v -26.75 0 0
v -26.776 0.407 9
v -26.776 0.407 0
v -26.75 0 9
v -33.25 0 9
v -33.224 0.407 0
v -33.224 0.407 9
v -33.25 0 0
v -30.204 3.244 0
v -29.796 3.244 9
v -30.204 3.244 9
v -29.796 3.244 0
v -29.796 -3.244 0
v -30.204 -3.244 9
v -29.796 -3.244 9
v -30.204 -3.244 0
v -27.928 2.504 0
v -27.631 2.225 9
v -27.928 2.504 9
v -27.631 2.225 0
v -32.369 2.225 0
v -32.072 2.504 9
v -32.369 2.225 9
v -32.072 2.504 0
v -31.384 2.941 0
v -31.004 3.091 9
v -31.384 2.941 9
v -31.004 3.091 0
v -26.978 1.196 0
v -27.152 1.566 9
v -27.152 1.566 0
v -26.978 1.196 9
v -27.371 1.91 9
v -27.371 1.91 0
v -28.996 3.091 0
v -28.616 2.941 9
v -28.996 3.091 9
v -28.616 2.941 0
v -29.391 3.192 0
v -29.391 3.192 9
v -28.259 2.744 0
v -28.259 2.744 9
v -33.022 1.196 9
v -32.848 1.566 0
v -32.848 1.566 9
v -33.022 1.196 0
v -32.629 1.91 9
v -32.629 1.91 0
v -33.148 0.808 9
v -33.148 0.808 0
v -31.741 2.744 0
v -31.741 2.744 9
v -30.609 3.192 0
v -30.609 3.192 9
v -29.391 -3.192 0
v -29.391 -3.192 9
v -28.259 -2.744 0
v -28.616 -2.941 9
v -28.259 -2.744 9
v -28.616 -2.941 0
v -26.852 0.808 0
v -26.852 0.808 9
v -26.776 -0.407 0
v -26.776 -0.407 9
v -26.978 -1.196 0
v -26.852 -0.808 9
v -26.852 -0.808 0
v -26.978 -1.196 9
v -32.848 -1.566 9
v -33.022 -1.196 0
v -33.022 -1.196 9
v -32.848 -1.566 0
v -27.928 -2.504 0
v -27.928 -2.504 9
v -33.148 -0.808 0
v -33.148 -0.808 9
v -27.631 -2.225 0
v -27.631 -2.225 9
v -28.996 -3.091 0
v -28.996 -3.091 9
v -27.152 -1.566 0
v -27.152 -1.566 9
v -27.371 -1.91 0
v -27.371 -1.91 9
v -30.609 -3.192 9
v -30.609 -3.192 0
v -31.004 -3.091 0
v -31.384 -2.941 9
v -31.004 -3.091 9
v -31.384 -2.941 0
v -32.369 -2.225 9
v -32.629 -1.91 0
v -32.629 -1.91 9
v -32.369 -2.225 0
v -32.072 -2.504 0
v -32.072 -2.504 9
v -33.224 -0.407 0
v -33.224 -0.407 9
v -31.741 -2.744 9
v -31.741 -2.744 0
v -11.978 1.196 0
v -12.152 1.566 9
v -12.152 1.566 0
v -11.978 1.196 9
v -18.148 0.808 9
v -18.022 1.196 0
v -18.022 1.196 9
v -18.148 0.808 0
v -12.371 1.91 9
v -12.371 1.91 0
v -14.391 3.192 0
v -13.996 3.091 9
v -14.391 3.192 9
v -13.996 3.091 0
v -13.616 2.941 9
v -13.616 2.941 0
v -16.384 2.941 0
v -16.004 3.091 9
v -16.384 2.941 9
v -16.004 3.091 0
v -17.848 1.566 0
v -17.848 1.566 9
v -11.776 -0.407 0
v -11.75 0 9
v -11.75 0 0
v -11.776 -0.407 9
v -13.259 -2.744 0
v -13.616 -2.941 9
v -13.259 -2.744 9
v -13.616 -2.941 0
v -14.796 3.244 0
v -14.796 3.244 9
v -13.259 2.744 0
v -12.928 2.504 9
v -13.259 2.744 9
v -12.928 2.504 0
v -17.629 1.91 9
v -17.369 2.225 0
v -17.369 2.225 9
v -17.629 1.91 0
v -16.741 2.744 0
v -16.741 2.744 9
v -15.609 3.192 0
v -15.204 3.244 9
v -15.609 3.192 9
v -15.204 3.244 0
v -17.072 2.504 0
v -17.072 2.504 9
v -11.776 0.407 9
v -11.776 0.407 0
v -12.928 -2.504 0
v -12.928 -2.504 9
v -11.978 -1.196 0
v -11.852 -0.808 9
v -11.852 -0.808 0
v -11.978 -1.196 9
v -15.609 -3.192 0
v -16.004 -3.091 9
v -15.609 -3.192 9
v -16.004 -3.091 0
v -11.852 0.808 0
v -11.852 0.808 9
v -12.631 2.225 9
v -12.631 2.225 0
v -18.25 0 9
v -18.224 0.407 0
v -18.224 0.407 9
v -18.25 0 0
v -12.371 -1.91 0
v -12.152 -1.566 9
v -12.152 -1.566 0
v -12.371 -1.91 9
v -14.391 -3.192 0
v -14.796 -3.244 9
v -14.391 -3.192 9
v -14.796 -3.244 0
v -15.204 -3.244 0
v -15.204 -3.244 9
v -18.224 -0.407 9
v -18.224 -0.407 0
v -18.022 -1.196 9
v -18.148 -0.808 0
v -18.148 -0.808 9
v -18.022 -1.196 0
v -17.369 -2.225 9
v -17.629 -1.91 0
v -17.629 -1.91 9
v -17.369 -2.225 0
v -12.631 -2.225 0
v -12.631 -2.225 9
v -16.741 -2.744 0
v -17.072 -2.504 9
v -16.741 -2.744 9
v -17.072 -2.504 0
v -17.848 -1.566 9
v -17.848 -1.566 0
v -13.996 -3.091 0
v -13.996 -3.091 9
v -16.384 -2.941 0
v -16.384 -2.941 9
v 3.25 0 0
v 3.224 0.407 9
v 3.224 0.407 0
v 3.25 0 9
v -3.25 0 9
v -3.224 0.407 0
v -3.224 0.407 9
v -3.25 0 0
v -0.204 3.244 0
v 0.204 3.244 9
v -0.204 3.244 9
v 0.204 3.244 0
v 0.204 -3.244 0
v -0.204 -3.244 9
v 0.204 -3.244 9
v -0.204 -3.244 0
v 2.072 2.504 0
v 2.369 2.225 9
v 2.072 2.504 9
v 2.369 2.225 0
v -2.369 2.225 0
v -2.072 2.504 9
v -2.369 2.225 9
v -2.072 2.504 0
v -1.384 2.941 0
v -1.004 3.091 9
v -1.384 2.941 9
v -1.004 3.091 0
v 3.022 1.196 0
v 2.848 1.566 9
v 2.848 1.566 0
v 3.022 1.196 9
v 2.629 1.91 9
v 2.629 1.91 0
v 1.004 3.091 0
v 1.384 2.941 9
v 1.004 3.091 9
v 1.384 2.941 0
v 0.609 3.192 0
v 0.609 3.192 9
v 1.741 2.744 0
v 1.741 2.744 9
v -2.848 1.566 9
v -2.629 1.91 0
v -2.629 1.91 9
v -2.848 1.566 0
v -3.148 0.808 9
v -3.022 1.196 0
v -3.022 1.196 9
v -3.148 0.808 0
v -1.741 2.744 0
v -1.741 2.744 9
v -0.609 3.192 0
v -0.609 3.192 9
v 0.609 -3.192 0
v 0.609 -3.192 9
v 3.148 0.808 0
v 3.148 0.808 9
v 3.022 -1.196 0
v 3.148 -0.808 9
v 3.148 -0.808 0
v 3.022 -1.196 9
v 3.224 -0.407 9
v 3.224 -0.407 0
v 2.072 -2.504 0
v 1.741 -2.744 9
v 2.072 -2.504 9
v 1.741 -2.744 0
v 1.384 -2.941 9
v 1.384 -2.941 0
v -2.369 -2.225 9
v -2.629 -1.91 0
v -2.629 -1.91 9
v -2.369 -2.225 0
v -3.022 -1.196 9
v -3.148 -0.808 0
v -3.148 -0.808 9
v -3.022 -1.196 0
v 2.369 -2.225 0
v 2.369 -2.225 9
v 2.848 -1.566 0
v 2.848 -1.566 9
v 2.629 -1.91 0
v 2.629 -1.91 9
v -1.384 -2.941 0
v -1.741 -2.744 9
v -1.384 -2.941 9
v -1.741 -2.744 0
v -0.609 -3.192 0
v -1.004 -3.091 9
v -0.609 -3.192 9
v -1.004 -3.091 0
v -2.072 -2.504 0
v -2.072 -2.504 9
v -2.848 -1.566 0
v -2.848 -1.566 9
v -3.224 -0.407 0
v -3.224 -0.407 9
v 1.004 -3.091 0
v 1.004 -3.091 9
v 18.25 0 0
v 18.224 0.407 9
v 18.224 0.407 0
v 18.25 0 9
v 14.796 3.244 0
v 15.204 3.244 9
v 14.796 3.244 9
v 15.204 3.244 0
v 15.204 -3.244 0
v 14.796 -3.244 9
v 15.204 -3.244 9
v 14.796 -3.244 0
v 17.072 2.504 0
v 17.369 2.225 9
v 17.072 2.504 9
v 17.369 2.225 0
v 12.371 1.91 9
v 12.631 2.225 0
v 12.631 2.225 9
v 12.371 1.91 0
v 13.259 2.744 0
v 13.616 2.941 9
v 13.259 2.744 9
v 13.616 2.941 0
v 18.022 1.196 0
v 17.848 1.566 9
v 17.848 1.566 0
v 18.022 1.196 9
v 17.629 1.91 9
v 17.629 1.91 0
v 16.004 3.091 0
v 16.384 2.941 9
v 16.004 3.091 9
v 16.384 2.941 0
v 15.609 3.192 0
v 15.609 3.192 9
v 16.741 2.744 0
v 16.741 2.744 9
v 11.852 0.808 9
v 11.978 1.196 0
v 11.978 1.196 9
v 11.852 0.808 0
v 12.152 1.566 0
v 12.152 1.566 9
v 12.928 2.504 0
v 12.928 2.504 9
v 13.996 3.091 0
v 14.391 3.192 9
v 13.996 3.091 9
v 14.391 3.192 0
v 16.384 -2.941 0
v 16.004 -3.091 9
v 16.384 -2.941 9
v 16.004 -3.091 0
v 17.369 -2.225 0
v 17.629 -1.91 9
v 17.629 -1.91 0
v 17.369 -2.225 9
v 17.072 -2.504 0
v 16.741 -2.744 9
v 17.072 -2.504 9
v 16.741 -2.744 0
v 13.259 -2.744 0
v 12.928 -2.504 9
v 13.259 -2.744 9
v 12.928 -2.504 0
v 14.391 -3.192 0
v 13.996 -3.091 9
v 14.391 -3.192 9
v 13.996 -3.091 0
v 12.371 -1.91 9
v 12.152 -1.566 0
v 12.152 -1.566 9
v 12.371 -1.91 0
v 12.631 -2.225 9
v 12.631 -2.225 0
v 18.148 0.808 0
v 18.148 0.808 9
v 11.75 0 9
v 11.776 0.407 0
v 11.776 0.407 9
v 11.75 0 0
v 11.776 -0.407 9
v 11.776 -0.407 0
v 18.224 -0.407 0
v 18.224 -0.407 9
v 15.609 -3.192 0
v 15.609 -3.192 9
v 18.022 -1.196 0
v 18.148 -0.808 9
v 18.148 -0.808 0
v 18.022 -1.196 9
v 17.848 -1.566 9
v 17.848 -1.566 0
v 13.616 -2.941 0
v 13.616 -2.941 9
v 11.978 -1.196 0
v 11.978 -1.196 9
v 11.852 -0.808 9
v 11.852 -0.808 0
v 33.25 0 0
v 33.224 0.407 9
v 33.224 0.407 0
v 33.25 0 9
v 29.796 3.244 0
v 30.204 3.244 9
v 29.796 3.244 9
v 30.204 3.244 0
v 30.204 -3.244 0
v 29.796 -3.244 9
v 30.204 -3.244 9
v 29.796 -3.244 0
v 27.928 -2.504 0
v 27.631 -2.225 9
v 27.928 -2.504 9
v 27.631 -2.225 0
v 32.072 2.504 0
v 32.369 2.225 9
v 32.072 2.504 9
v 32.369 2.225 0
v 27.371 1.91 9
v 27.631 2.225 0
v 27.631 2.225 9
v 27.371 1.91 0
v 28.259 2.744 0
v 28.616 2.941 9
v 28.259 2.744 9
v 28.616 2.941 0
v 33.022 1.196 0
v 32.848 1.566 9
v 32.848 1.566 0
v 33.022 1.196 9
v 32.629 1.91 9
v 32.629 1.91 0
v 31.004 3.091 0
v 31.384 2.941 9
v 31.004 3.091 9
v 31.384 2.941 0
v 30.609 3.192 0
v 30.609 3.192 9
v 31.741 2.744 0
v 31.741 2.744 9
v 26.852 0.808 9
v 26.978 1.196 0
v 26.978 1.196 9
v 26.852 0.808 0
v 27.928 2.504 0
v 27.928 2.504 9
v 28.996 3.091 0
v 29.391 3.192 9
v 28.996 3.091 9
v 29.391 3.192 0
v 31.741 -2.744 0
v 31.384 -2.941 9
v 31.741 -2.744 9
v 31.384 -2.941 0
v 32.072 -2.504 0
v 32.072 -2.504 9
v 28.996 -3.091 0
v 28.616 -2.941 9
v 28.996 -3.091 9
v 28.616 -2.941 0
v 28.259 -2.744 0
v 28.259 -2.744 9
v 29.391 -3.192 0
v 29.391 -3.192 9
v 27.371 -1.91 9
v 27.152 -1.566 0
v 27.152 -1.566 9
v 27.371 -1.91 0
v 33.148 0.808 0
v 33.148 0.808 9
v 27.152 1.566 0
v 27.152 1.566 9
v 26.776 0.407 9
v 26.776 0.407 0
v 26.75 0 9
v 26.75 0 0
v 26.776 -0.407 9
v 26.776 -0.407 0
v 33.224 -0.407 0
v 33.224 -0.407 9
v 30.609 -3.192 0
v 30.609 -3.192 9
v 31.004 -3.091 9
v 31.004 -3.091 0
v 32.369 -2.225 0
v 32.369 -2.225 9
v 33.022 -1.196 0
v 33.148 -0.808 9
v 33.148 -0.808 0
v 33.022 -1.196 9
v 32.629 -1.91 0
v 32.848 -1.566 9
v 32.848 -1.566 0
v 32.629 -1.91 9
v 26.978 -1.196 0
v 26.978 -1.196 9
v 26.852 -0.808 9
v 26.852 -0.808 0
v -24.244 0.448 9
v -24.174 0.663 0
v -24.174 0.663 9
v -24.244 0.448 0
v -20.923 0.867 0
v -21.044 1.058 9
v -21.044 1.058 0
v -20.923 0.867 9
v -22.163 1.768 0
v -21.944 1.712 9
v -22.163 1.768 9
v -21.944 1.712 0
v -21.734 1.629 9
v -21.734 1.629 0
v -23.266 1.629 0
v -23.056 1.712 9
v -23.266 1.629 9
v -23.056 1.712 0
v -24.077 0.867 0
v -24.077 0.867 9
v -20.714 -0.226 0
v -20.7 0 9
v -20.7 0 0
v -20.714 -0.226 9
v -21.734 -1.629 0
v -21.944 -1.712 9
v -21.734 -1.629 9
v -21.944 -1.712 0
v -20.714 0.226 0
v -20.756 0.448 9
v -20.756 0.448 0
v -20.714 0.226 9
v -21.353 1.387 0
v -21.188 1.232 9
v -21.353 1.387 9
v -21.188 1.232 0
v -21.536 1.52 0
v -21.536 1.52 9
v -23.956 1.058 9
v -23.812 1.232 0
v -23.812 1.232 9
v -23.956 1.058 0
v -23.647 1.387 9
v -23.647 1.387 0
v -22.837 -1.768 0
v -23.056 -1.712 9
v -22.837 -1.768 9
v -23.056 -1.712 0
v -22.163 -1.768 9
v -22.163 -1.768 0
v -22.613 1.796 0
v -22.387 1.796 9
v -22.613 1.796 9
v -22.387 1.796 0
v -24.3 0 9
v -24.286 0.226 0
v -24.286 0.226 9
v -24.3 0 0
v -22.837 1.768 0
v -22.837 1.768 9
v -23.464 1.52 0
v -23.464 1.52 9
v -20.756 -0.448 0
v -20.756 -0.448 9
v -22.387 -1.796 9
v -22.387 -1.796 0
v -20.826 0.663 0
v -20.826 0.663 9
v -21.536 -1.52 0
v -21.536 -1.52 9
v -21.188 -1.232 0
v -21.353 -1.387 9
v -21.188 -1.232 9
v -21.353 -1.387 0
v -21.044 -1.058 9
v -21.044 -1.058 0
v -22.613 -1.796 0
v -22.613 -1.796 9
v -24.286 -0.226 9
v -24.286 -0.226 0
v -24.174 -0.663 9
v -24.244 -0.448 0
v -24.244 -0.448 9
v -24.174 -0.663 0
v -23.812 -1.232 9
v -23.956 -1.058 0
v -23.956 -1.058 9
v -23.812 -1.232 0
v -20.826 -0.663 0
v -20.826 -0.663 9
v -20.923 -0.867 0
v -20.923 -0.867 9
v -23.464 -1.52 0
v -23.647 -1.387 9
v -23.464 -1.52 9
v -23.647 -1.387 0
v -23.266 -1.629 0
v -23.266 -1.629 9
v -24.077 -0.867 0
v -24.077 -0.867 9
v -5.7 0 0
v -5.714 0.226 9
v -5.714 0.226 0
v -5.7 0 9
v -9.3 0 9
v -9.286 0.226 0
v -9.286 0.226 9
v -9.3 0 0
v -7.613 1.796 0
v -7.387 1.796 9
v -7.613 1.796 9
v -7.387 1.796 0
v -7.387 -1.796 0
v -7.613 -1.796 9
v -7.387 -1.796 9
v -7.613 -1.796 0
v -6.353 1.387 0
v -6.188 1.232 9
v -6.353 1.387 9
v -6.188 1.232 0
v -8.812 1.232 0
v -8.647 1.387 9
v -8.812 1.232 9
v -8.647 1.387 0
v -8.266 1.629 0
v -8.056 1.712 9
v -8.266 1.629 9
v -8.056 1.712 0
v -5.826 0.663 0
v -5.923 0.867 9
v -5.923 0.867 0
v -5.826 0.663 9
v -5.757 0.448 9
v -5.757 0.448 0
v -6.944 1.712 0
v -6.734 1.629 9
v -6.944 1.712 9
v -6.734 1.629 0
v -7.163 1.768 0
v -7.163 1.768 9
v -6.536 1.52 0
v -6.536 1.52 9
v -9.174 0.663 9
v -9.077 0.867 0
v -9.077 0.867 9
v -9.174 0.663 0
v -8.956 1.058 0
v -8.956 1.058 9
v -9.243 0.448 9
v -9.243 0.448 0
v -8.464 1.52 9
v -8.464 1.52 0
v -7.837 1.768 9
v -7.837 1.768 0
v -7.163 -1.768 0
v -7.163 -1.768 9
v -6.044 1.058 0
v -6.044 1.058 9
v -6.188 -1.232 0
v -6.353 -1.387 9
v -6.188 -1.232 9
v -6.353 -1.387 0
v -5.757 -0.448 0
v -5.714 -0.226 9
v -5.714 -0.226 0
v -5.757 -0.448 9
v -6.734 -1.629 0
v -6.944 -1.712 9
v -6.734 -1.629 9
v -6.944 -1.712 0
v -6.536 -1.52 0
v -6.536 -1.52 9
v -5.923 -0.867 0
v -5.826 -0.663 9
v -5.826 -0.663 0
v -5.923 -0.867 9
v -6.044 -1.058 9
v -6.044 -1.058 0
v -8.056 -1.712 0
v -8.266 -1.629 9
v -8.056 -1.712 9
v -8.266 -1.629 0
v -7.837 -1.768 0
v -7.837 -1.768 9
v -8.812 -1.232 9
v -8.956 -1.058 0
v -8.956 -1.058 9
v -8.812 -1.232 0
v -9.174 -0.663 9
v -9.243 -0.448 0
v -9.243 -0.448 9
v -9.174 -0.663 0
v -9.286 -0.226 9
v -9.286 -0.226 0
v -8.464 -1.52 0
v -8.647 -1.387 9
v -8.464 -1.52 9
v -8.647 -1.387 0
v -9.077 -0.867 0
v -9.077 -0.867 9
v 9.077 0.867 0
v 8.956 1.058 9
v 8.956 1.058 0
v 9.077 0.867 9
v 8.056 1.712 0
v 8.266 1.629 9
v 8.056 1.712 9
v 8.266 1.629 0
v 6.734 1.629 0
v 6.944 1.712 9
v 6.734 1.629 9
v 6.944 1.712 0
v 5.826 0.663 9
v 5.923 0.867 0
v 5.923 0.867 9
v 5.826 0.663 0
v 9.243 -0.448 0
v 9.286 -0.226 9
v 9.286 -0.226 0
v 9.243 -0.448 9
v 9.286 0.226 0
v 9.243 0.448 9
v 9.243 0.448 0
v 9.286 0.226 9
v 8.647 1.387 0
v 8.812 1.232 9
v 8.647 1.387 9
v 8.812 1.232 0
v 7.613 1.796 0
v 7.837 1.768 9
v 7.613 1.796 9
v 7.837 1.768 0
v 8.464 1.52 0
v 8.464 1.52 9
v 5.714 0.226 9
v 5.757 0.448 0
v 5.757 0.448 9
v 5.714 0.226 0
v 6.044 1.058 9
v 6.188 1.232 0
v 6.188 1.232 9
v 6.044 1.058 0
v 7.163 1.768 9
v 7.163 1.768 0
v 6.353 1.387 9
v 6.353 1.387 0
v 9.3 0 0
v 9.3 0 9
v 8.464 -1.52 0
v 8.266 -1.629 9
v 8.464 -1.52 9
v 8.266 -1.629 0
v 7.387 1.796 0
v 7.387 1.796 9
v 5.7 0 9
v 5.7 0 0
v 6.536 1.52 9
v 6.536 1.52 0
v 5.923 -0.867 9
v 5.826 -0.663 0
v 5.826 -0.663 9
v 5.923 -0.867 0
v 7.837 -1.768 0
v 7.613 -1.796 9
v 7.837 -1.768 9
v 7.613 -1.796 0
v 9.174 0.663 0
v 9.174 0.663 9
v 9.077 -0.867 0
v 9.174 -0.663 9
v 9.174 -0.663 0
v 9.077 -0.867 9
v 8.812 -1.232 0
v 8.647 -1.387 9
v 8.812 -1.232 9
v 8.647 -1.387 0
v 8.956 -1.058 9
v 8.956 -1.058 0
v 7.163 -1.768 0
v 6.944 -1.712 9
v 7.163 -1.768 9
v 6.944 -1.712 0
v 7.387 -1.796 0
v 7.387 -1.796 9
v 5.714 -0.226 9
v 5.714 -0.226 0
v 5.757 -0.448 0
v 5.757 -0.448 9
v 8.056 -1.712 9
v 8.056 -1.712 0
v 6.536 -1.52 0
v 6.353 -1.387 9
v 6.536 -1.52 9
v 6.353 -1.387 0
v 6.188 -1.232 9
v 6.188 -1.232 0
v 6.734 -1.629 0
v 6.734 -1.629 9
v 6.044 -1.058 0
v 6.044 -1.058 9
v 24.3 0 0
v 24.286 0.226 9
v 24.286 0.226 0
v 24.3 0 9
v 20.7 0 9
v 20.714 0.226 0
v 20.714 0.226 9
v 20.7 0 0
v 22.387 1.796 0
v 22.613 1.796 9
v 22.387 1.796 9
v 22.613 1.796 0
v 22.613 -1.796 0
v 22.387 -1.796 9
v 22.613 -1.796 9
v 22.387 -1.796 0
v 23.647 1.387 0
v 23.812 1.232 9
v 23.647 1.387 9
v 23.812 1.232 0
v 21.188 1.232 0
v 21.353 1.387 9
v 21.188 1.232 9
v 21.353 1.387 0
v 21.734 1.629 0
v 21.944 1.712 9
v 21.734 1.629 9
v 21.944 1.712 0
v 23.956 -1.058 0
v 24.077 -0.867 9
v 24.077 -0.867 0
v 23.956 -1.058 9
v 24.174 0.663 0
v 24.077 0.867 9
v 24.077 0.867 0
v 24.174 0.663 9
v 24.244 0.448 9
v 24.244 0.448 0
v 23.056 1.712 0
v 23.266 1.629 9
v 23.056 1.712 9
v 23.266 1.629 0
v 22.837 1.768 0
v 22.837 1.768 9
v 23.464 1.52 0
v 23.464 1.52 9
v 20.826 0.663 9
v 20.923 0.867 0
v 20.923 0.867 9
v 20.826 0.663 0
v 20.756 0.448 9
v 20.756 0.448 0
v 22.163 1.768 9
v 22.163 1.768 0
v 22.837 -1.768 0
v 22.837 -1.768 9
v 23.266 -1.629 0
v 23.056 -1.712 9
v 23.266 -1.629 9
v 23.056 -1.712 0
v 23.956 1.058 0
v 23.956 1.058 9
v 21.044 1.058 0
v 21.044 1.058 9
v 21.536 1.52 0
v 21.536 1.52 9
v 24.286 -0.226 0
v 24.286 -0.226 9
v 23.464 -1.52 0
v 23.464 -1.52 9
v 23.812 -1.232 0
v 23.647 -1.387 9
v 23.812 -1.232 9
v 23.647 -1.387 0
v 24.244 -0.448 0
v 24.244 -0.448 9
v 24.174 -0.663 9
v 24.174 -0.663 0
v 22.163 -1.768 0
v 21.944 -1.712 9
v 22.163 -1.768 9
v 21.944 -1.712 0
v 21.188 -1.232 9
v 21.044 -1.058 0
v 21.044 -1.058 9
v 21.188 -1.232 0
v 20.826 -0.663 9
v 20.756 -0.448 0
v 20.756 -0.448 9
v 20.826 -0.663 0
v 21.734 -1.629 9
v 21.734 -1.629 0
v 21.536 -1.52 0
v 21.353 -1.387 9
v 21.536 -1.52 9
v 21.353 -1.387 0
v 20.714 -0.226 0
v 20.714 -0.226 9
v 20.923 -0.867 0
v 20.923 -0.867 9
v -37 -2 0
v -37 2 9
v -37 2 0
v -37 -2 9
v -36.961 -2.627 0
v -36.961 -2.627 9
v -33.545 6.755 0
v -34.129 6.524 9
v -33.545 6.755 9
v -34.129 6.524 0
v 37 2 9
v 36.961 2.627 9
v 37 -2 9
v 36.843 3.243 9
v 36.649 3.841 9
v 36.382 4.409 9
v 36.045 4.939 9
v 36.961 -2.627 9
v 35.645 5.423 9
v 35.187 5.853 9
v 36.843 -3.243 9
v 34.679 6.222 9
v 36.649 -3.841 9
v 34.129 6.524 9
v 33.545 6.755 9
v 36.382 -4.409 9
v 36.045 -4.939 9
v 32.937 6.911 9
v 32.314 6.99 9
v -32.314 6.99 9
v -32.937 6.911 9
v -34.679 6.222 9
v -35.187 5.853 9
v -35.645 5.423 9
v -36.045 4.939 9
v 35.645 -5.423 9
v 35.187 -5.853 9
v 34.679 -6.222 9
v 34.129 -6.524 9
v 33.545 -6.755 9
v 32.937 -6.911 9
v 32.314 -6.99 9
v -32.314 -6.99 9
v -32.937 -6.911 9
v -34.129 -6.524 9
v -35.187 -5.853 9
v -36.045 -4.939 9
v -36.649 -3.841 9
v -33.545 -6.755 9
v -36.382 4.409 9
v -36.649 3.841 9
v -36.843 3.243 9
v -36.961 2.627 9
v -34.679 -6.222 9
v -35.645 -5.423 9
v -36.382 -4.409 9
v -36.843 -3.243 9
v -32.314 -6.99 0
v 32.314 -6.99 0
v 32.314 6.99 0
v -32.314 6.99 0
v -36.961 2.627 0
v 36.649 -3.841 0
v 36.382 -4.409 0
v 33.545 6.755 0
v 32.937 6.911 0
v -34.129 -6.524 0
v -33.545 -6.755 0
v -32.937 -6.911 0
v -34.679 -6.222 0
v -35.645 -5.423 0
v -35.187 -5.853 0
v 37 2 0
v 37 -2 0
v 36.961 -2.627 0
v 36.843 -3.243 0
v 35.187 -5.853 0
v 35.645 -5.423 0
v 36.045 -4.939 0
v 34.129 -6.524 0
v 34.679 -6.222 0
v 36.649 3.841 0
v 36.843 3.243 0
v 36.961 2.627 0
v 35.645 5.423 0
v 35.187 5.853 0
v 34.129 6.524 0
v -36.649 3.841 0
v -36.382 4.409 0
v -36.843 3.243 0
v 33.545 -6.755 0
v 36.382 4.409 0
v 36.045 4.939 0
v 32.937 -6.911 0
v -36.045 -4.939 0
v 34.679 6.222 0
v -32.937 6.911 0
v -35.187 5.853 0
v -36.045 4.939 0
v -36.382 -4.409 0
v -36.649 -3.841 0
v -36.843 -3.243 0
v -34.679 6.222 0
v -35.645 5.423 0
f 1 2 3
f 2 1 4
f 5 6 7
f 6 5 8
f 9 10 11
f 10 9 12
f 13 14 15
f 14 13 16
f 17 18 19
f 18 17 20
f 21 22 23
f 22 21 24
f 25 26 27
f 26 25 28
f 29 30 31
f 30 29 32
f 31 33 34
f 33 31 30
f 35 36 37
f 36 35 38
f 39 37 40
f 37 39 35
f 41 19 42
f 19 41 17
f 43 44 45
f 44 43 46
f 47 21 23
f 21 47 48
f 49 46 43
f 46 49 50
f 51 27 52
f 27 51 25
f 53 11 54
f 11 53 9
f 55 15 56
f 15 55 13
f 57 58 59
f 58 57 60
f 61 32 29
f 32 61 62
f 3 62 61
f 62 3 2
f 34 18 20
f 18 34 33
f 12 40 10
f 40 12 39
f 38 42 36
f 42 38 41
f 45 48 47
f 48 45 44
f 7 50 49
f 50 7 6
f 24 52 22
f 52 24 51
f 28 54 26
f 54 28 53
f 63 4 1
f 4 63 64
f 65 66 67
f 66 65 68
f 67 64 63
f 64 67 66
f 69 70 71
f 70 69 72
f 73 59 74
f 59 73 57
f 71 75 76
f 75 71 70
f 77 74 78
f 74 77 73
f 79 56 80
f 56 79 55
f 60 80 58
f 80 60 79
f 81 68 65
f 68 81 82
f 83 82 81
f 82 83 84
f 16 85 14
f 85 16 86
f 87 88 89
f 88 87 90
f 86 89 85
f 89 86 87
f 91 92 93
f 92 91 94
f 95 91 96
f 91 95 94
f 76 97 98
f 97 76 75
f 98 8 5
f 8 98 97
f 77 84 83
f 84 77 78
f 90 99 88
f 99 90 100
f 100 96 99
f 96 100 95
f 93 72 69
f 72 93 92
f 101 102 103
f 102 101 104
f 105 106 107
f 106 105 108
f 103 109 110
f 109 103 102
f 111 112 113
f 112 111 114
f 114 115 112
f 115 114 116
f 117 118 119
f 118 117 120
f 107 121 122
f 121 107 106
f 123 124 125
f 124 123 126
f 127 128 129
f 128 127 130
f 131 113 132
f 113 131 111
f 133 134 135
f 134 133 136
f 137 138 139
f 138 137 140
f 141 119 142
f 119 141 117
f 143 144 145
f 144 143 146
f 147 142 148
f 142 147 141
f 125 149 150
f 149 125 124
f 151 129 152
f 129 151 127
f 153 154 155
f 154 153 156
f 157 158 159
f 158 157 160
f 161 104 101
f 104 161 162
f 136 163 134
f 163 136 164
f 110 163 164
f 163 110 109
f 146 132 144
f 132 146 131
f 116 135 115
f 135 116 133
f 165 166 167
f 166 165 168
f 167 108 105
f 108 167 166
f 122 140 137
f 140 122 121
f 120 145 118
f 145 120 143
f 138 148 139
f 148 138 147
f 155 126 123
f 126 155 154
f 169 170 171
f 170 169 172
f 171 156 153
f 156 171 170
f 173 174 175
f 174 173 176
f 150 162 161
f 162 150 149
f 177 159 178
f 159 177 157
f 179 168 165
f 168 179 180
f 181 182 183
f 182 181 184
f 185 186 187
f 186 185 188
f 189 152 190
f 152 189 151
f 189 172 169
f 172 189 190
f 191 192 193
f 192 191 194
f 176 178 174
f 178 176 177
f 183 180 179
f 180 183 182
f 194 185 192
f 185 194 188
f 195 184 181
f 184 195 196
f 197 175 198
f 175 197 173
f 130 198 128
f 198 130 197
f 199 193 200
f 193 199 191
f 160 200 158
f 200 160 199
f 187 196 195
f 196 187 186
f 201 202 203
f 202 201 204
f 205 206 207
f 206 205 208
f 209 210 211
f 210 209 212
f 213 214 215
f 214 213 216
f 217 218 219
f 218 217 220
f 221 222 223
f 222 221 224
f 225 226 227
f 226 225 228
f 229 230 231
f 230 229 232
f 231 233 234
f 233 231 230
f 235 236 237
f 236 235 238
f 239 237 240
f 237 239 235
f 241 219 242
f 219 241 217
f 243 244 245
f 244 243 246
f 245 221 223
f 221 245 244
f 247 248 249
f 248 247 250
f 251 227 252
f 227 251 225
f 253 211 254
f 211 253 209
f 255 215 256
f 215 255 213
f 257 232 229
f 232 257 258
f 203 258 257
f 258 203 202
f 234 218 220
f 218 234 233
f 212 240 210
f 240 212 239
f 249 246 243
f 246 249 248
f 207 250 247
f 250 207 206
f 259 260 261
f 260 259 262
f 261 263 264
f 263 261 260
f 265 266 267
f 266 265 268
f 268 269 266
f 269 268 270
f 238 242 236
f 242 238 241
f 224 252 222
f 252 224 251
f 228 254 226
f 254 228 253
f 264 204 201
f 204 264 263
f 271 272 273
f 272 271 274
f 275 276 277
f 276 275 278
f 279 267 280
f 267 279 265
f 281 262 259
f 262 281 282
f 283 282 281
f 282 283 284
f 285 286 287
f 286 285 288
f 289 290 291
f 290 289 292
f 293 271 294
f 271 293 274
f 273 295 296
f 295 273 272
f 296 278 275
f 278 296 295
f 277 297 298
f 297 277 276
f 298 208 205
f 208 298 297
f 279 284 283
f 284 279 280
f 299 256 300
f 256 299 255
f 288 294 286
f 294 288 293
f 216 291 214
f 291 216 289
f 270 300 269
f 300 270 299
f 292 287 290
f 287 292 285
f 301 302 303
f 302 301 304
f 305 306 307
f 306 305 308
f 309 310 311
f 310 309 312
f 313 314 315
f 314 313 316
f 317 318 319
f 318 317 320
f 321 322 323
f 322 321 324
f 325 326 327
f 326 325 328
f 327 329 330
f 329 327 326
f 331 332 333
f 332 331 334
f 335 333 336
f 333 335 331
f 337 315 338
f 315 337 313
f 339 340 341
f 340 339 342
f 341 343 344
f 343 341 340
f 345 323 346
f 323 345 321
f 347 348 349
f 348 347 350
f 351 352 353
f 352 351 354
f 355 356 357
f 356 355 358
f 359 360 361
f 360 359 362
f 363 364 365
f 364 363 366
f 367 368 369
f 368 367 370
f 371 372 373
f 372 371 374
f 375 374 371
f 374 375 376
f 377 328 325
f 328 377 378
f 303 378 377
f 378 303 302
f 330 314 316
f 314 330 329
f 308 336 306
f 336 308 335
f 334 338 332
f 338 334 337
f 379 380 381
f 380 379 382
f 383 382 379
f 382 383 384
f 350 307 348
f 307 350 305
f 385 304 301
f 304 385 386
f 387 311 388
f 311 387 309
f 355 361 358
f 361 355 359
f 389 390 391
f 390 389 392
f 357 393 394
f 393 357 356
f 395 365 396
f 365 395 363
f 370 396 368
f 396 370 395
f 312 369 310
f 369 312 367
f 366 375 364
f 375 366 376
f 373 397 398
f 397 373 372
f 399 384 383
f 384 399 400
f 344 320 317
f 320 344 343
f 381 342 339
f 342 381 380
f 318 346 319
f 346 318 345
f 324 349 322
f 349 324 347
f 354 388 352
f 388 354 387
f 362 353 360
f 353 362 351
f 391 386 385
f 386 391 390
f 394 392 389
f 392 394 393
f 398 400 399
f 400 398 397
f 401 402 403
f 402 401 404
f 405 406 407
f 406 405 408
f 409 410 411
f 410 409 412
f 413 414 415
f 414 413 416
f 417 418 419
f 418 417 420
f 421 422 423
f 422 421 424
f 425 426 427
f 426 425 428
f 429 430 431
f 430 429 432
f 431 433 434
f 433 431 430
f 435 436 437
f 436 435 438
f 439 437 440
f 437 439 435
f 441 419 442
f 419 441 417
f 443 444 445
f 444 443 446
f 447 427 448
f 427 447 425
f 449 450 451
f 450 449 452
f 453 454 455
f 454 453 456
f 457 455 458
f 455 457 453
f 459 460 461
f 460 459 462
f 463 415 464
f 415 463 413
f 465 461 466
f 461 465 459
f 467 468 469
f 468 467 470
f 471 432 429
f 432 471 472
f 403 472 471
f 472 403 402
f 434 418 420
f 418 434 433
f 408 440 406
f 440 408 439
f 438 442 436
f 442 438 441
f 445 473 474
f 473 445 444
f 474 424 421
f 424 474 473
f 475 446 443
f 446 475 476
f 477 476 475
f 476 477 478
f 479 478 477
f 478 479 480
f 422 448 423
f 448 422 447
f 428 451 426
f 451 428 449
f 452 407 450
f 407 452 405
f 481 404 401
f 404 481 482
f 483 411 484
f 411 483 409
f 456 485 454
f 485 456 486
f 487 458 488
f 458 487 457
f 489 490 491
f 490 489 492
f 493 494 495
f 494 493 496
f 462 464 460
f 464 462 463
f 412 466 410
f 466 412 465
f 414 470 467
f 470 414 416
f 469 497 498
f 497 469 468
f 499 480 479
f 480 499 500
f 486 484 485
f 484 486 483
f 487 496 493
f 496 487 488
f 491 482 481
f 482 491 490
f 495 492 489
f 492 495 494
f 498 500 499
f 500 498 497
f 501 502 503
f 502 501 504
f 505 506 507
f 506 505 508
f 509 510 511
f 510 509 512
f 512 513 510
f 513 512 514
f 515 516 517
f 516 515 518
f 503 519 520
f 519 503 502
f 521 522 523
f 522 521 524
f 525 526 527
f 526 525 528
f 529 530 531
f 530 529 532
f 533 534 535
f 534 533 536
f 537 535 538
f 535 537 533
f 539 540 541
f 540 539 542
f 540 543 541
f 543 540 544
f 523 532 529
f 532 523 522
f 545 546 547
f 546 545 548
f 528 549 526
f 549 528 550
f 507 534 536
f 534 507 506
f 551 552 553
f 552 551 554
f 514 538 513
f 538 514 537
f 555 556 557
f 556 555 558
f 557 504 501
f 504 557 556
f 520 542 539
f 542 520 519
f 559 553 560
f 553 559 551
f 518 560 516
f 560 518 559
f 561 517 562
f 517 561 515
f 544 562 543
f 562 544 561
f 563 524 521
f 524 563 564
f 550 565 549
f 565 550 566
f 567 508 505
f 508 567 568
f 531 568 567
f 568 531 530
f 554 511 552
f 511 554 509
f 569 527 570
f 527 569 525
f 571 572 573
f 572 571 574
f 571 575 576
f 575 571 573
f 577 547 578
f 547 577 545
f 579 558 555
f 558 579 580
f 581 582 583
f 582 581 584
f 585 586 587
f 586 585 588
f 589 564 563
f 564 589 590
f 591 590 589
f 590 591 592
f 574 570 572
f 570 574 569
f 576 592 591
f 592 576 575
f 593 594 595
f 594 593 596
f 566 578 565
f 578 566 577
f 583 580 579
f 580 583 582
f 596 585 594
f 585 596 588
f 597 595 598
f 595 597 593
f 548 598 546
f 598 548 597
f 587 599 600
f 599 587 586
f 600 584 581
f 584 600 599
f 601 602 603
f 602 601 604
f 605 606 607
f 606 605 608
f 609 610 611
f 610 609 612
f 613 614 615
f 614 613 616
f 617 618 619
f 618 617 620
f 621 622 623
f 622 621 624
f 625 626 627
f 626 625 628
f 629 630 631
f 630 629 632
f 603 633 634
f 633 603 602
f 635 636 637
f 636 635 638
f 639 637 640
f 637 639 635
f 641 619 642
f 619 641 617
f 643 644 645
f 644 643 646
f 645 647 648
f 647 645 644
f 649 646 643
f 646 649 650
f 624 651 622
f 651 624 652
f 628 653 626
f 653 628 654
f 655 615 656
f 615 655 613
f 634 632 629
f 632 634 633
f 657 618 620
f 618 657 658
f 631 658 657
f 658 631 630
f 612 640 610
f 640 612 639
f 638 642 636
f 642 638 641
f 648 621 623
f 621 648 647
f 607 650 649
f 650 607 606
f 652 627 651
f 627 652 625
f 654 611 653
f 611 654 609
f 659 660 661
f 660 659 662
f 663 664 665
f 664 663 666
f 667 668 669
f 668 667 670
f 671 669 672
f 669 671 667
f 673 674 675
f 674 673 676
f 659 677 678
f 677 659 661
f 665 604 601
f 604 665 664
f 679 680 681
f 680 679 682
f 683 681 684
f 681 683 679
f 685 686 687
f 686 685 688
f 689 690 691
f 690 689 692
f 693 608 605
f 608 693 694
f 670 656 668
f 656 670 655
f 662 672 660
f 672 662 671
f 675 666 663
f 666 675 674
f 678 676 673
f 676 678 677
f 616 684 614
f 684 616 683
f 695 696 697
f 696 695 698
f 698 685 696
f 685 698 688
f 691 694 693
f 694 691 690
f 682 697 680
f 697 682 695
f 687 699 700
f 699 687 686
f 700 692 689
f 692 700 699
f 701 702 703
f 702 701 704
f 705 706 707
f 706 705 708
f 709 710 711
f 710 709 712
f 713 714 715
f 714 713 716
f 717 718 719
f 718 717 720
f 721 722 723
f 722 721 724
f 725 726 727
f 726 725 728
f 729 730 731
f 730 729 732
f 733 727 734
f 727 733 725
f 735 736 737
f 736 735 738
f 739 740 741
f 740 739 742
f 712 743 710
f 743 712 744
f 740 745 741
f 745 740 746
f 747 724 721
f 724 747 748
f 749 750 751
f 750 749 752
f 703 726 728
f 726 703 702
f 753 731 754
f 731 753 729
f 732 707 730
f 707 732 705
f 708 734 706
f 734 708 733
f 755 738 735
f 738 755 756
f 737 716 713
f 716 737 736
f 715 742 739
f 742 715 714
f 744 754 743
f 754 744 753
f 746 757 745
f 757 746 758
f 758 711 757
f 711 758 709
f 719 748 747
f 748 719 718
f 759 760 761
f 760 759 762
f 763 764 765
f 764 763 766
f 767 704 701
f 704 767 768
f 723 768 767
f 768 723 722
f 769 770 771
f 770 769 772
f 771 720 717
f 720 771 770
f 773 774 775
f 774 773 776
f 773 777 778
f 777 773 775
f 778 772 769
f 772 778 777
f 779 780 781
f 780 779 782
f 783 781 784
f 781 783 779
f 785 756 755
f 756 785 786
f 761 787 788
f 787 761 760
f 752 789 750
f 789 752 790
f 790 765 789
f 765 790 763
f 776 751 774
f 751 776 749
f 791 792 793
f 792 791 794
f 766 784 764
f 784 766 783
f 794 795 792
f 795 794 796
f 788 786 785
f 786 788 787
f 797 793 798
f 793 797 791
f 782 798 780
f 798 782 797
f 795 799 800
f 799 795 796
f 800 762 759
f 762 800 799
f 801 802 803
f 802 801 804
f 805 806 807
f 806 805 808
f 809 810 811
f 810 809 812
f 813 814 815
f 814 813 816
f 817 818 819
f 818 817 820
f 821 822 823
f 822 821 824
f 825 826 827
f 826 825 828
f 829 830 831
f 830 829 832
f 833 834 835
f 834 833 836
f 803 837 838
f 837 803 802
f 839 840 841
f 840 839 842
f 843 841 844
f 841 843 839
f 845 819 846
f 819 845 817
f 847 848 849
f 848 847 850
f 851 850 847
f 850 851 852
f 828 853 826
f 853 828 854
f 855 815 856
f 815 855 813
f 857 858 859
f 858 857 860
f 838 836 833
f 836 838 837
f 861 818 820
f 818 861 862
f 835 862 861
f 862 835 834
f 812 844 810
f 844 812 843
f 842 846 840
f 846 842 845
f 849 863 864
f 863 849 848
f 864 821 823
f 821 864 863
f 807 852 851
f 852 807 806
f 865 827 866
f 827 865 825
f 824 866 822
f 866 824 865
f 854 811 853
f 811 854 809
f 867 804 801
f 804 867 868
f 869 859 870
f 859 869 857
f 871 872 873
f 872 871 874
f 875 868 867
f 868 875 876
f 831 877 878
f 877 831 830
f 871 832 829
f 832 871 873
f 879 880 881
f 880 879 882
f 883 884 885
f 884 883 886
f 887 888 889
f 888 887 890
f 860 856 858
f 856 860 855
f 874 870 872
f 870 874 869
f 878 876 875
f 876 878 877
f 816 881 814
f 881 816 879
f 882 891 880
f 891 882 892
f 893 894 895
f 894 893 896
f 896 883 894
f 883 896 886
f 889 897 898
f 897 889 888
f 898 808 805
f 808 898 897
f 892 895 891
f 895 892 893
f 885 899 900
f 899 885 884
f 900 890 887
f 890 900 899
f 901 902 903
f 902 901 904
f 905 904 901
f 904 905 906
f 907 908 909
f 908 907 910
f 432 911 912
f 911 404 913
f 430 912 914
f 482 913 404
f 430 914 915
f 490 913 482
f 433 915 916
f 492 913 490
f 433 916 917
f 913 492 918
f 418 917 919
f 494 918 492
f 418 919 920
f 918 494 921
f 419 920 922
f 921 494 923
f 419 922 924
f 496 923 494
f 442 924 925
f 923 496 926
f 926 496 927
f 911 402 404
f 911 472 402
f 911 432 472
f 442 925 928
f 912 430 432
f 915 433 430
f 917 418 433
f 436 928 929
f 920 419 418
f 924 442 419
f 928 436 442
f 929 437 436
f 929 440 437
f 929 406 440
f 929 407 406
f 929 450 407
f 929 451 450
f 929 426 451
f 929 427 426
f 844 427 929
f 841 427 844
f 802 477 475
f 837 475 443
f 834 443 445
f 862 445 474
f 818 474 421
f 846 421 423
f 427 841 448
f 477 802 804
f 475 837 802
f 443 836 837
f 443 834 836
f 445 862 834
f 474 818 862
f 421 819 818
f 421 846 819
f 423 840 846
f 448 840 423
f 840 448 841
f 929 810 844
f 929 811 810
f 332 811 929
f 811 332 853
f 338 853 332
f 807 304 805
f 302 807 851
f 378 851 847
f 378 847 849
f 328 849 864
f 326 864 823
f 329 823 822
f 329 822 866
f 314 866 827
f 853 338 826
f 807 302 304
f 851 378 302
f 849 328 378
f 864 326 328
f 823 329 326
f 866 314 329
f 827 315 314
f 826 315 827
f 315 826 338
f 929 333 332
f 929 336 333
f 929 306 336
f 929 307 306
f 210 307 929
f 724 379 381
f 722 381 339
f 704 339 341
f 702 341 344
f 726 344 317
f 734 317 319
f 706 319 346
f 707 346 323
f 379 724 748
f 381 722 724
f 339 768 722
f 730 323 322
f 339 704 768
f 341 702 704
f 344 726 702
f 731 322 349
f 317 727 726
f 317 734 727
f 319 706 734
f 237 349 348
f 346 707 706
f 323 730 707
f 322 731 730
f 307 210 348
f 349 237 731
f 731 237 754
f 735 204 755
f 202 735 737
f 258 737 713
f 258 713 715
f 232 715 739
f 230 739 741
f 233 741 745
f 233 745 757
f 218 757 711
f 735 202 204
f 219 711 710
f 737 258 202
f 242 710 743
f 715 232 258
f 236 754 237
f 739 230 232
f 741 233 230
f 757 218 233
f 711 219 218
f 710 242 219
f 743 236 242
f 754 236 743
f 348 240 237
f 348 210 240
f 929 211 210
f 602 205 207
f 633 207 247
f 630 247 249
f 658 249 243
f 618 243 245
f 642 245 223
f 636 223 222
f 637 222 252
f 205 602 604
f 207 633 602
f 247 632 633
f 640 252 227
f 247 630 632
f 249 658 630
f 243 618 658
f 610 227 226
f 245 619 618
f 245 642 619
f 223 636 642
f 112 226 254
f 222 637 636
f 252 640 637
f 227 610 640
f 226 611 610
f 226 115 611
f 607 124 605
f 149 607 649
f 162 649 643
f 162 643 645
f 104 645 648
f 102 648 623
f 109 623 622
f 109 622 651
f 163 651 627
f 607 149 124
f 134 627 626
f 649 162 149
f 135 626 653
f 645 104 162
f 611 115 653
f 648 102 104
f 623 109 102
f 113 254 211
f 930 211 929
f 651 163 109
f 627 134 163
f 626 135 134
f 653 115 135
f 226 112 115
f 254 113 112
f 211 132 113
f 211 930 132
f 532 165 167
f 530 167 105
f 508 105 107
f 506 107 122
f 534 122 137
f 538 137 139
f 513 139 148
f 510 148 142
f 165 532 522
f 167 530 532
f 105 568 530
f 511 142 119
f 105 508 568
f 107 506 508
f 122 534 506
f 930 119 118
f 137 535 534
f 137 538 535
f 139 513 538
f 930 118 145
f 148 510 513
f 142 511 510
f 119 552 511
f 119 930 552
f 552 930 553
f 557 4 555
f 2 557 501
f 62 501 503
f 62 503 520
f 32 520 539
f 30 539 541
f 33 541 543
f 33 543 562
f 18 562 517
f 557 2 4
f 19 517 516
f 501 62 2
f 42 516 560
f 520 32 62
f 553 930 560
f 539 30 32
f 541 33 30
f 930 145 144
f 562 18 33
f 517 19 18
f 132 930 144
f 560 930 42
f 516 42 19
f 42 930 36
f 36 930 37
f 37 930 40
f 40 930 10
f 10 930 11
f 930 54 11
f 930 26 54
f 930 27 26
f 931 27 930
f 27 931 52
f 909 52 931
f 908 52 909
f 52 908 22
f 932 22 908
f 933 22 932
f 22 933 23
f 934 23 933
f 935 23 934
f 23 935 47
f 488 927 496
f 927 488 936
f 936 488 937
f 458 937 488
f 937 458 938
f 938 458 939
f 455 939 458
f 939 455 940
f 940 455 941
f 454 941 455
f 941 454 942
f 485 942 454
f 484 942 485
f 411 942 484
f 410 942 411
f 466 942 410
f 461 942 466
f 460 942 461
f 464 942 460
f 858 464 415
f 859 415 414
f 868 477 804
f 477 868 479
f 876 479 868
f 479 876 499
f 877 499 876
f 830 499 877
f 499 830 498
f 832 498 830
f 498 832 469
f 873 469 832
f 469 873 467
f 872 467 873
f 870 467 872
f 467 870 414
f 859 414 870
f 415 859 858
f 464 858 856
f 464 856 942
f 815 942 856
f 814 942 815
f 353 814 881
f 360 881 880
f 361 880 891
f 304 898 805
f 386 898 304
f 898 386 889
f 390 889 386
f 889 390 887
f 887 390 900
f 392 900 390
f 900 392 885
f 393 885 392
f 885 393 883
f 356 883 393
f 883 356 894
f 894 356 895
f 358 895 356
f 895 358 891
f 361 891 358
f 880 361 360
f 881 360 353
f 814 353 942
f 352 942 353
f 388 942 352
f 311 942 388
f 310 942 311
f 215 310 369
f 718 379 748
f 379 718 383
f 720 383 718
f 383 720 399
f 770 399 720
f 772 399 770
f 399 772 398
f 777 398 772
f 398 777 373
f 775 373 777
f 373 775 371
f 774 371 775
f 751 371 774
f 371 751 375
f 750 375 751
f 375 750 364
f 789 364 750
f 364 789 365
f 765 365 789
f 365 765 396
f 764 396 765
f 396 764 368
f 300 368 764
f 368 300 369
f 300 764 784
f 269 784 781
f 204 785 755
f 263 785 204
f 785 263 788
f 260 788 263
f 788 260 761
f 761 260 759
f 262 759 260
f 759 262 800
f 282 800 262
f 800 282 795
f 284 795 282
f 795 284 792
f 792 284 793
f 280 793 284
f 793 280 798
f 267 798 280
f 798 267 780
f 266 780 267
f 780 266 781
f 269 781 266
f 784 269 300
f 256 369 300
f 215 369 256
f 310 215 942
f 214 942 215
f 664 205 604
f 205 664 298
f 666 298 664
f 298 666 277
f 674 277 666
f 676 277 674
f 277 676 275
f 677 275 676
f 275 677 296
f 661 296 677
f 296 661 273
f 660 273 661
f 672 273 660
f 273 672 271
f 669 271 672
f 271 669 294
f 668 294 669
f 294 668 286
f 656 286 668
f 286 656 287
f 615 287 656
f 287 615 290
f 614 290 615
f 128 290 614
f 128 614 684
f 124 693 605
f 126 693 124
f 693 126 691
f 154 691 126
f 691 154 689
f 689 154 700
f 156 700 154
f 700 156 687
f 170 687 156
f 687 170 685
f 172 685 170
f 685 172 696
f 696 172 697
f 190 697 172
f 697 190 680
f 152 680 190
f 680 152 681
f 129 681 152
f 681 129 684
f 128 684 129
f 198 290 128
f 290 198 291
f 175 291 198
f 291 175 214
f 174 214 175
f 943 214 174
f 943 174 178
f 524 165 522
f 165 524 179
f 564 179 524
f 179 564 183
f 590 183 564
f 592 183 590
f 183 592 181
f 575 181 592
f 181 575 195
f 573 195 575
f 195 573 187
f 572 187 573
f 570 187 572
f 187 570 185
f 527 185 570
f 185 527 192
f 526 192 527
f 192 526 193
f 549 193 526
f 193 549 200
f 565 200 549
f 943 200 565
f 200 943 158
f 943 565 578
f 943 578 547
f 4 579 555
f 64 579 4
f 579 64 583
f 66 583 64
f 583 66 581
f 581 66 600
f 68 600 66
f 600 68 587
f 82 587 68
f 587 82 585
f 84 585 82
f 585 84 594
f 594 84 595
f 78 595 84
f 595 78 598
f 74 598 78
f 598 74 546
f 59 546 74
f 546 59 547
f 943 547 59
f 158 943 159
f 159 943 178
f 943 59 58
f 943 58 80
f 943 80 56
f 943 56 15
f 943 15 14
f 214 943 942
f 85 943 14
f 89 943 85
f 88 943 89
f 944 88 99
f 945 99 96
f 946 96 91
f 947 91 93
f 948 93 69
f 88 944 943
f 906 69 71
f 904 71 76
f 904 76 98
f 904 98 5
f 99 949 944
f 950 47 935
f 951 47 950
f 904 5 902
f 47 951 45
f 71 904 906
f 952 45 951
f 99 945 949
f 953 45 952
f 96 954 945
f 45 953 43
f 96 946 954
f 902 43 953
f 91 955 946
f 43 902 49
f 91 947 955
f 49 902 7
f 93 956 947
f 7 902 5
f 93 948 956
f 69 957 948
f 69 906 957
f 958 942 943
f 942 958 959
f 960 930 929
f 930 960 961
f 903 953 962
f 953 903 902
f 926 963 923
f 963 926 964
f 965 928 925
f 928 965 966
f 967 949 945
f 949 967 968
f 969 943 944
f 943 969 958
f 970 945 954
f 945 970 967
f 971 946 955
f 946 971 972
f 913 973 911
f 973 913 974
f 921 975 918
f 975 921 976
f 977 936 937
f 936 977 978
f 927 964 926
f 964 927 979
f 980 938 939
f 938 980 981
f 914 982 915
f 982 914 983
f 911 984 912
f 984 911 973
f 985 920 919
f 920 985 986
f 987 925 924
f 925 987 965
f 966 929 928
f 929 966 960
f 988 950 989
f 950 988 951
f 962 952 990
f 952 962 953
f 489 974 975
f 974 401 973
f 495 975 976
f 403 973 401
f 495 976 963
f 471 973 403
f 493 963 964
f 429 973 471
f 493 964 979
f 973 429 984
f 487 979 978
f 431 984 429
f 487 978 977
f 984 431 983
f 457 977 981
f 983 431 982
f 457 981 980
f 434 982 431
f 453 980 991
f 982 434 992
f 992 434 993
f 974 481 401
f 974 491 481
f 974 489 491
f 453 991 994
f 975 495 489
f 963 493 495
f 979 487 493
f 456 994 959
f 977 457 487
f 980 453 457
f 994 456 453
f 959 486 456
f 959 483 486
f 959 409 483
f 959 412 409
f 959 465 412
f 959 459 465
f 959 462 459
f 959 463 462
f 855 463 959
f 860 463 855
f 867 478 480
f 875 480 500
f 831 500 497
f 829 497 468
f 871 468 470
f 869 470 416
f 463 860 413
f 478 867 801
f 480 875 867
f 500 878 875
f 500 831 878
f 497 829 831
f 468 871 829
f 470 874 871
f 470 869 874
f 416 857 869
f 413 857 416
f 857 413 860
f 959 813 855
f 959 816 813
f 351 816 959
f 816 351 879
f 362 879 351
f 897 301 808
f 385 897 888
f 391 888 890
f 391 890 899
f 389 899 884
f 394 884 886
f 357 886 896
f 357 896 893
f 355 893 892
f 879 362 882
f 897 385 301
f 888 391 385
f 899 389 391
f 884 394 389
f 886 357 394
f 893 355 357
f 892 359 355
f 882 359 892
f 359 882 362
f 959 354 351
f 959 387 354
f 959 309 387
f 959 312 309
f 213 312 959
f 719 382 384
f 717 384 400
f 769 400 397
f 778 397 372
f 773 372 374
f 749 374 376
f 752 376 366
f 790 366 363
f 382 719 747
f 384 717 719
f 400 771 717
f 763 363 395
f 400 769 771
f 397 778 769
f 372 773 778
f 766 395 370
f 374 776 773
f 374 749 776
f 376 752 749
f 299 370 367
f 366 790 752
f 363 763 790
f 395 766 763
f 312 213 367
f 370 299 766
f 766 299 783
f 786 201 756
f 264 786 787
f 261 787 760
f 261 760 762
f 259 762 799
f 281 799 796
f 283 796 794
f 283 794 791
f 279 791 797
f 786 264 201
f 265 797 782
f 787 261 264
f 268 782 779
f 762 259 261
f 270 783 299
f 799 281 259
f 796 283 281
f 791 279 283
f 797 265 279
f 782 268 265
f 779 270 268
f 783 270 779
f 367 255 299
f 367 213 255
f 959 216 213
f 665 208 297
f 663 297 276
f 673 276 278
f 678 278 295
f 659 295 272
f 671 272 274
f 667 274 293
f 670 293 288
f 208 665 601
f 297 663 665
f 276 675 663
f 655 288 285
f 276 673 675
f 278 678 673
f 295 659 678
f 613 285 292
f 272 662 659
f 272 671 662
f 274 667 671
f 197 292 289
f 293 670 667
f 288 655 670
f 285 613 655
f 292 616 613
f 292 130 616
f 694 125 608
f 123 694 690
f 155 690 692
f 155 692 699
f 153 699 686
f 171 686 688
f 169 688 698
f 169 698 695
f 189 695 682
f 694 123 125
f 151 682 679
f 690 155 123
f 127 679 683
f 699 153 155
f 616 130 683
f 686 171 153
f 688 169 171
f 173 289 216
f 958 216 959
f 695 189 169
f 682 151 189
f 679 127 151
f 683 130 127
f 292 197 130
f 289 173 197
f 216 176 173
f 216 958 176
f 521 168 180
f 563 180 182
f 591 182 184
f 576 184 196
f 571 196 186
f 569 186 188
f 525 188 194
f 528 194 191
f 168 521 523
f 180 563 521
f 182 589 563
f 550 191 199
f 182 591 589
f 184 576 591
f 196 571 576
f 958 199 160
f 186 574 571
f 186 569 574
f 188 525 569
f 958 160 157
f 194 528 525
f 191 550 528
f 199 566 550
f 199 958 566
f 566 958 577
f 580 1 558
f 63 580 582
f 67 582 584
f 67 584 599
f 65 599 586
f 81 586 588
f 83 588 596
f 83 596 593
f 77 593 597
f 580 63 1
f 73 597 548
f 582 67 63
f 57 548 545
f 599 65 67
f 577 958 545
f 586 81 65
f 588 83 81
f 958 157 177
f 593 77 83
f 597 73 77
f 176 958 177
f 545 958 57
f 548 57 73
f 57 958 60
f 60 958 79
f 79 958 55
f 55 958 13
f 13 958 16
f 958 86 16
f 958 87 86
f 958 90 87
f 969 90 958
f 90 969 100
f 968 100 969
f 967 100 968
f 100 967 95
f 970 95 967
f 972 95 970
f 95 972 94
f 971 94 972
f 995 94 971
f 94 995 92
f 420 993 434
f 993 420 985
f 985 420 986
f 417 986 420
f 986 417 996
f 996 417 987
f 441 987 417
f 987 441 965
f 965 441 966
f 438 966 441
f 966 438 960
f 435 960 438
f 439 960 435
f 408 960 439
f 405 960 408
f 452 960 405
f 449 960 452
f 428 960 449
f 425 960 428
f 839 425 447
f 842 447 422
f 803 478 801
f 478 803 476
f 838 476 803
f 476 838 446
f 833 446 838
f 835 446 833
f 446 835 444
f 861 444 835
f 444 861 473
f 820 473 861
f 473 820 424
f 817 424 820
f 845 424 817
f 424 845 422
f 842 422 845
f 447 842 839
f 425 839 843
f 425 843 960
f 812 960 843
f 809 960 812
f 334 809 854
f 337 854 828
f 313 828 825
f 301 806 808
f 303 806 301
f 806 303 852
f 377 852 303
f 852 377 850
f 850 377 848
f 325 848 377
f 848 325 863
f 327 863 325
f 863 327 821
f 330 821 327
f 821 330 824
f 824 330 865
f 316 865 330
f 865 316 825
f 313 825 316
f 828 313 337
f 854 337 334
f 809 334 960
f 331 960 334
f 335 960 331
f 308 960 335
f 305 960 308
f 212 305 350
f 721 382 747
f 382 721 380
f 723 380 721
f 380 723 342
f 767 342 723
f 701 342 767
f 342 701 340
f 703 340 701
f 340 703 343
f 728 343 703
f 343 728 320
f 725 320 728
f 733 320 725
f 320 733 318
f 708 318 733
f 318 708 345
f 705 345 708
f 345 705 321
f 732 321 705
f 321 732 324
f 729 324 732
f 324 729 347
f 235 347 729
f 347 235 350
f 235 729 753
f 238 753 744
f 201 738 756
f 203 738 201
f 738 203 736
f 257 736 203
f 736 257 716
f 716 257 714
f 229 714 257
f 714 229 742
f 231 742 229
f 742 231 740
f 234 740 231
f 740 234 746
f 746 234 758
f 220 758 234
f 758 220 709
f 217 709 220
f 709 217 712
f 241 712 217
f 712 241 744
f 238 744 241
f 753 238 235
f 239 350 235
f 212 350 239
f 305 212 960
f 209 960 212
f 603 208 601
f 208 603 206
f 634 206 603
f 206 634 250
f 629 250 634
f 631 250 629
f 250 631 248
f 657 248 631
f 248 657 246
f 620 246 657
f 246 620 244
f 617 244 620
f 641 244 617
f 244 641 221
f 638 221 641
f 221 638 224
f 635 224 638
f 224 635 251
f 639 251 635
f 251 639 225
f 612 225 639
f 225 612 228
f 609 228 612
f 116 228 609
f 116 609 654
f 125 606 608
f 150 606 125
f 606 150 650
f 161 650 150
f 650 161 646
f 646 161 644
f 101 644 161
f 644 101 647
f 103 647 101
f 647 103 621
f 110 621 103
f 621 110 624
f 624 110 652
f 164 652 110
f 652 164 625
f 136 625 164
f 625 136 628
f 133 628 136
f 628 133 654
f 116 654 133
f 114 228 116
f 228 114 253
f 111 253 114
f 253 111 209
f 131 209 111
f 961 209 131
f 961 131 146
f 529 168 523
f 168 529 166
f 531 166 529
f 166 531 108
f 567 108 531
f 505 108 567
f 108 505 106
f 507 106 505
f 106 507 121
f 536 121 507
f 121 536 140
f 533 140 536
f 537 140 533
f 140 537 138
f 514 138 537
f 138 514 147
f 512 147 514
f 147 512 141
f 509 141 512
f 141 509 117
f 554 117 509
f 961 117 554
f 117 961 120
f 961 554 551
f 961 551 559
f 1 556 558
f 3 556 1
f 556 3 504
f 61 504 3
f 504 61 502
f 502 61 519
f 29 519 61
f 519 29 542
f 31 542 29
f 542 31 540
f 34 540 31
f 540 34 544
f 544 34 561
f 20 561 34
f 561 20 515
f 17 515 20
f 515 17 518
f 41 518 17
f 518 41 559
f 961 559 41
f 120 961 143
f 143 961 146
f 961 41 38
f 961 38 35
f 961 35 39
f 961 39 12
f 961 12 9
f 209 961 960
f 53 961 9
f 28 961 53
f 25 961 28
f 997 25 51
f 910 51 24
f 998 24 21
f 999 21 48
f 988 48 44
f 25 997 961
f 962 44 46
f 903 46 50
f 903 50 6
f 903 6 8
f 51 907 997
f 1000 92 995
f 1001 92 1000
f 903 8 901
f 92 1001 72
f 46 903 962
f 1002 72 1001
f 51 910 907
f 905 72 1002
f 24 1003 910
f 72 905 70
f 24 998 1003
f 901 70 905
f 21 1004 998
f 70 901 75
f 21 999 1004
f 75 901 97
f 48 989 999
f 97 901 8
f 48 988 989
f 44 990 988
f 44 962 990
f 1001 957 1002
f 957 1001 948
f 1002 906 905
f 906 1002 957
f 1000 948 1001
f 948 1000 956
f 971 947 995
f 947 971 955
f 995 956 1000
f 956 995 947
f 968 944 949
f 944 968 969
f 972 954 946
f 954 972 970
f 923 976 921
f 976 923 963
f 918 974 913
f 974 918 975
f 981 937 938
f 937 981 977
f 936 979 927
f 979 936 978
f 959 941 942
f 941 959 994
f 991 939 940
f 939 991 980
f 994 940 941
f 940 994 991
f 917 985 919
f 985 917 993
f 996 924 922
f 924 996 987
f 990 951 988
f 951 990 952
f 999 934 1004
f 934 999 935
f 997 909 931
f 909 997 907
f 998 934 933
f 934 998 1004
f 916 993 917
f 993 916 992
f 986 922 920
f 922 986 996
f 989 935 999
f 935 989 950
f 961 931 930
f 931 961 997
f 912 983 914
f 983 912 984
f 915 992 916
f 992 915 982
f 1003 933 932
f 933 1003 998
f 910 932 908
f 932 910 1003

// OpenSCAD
$fn = 50;


difference() {
	union() {
		translate(v = [0, 0, 0]) {
			rotate(a = [0, 0, 0]) {
				hull() {
					translate(v = [-32.0000000000, 2.0000000000, 0]) {
						rotate(a = [0, 0, 0]) {
							translate(v = [0, 0, 0]) {
								rotate(a = [0, 0, 0]) {
									cylinder(h = 9, r = 5);
								}
							}
						}
					}
					translate(v = [32.0000000000, 2.0000000000, 0]) {
						rotate(a = [0, 0, 0]) {
							translate(v = [0, 0, 0]) {
								rotate(a = [0, 0, 0]) {
									cylinder(h = 9, r = 5);
								}
							}
						}
					}
					translate(v = [-32.0000000000, -2.0000000000, 0]) {
						rotate(a = [0, 0, 0]) {
							translate(v = [0, 0, 0]) {
								rotate(a = [0, 0, 0]) {
									cylinder(h = 9, r = 5);
								}
							}
						}
					}
					translate(v = [32.0000000000, -2.0000000000, 0]) {
						rotate(a = [0, 0, 0]) {
							translate(v = [0, 0, 0]) {
								rotate(a = [0, 0, 0]) {
									cylinder(h = 9, r = 5);
								}
							}
						}
					}
				}
			}
		}
	}
	union() {
		translate(v = [-30.0000000000, 0.0000000000, 0]) {
			rotate(a = [0, 0, 0]) {
				translate(v = [0, 0, -50]) {
					rotate(a = [0, 0, 0]) {
						cylinder(h = 100, r = 3.2500000000);
					}
				}
			}
		}
		translate(v = [-15.0000000000, 0.0000000000, 0]) {
			rotate(a = [0, 0, 0]) {
				translate(v = [0, 0, -50]) {
					rotate(a = [0, 0, 0]) {
						cylinder(h = 100, r = 3.2500000000);
					}
				}
			}
		}
		translate(v = [0.0000000000, 0.0000000000, 0]) {
			rotate(a = [0, 0, 0]) {
				translate(v = [0, 0, -50]) {
					rotate(a = [0, 0, 0]) {
						cylinder(h = 100, r = 3.2500000000);
					}
				}
			}
		}
		translate(v = [15.0000000000, 0.0000000000, 0]) {
			rotate(a = [0, 0, 0]) {
				translate(v = [0, 0, -50]) {
					rotate(a = [0, 0, 0]) {
						cylinder(h = 100, r = 3.2500000000);
					}
				}
			}
		}
		translate(v = [30.0000000000, 0.0000000000, 0]) {
			rotate(a = [0, 0, 0]) {
				translate(v = [0, 0, -50]) {
					rotate(a = [0, 0, 0]) {
						cylinder(h = 100, r = 3.2500000000);
					}
				}
			}
		}
		translate(v = [-30.0000000000, 0.0000000000, 0]) {
			rotate(a = [0, 0, 0]) {
				translate(v = [0, 0, -50]) {
					rotate(a = [0, 0, 0]) {
						cylinder(h = 100, r = 1.8000000000);
					}
				}
			}
		}
		translate(v = [-22.5000000000, 0.0000000000, 0]) {
			rotate(a = [0, 0, 0]) {
				translate(v = [0, 0, -50]) {
					rotate(a = [0, 0, 0]) {
						cylinder(h = 100, r = 1.8000000000);
					}
				}
			}
		}
		translate(v = [-15.0000000000, 0.0000000000, 0]) {
			rotate(a = [0, 0, 0]) {
				translate(v = [0, 0, -50]) {
					rotate(a = [0, 0, 0]) {
						cylinder(h = 100, r = 1.8000000000);
					}
				}
			}
		}
		translate(v = [-7.5000000000, 0.0000000000, 0]) {
			rotate(a = [0, 0, 0]) {
				translate(v = [0, 0, -50]) {
					rotate(a = [0, 0, 0]) {
						cylinder(h = 100, r = 1.8000000000);
					}
				}
			}
		}
		translate(v = [0.0000000000, 0.0000000000, 0]) {
			rotate(a = [0, 0, 0]) {
				translate(v = [0, 0, -50]) {
					rotate(a = [0, 0, 0]) {
						cylinder(h = 100, r = 1.8000000000);
					}
				}
			}
		}
		translate(v = [7.5000000000, 0.0000000000, 0]) {
			rotate(a = [0, 0, 0]) {
				translate(v = [0, 0, -50]) {
					rotate(a = [0, 0, 0]) {
						cylinder(h = 100, r = 1.8000000000);
					}
				}
			}
		}
		translate(v = [15.0000000000, 0.0000000000, 0]) {
			rotate(a = [0, 0, 0]) {
				translate(v = [0, 0, -50]) {
					rotate(a = [0, 0, 0]) {
						cylinder(h = 100, r = 1.8000000000);
					}
				}
			}
		}
		translate(v = [22.5000000000, 0.0000000000, 0]) {
			rotate(a = [0, 0, 0]) {
				translate(v = [0, 0, -50]) {
					rotate(a = [0, 0, 0]) {
						cylinder(h = 100, r = 1.8000000000);
					}
				}
			}
		}
		translate(v = [30.0000000000, 0.0000000000, 0]) {
			rotate(a = [0, 0, 0]) {
				translate(v = [0, 0, -50]) {
					rotate(a = [0, 0, 0]) {
						cylinder(h = 100, r = 1.8000000000);
					}
				}
			}
		}
	}
}
